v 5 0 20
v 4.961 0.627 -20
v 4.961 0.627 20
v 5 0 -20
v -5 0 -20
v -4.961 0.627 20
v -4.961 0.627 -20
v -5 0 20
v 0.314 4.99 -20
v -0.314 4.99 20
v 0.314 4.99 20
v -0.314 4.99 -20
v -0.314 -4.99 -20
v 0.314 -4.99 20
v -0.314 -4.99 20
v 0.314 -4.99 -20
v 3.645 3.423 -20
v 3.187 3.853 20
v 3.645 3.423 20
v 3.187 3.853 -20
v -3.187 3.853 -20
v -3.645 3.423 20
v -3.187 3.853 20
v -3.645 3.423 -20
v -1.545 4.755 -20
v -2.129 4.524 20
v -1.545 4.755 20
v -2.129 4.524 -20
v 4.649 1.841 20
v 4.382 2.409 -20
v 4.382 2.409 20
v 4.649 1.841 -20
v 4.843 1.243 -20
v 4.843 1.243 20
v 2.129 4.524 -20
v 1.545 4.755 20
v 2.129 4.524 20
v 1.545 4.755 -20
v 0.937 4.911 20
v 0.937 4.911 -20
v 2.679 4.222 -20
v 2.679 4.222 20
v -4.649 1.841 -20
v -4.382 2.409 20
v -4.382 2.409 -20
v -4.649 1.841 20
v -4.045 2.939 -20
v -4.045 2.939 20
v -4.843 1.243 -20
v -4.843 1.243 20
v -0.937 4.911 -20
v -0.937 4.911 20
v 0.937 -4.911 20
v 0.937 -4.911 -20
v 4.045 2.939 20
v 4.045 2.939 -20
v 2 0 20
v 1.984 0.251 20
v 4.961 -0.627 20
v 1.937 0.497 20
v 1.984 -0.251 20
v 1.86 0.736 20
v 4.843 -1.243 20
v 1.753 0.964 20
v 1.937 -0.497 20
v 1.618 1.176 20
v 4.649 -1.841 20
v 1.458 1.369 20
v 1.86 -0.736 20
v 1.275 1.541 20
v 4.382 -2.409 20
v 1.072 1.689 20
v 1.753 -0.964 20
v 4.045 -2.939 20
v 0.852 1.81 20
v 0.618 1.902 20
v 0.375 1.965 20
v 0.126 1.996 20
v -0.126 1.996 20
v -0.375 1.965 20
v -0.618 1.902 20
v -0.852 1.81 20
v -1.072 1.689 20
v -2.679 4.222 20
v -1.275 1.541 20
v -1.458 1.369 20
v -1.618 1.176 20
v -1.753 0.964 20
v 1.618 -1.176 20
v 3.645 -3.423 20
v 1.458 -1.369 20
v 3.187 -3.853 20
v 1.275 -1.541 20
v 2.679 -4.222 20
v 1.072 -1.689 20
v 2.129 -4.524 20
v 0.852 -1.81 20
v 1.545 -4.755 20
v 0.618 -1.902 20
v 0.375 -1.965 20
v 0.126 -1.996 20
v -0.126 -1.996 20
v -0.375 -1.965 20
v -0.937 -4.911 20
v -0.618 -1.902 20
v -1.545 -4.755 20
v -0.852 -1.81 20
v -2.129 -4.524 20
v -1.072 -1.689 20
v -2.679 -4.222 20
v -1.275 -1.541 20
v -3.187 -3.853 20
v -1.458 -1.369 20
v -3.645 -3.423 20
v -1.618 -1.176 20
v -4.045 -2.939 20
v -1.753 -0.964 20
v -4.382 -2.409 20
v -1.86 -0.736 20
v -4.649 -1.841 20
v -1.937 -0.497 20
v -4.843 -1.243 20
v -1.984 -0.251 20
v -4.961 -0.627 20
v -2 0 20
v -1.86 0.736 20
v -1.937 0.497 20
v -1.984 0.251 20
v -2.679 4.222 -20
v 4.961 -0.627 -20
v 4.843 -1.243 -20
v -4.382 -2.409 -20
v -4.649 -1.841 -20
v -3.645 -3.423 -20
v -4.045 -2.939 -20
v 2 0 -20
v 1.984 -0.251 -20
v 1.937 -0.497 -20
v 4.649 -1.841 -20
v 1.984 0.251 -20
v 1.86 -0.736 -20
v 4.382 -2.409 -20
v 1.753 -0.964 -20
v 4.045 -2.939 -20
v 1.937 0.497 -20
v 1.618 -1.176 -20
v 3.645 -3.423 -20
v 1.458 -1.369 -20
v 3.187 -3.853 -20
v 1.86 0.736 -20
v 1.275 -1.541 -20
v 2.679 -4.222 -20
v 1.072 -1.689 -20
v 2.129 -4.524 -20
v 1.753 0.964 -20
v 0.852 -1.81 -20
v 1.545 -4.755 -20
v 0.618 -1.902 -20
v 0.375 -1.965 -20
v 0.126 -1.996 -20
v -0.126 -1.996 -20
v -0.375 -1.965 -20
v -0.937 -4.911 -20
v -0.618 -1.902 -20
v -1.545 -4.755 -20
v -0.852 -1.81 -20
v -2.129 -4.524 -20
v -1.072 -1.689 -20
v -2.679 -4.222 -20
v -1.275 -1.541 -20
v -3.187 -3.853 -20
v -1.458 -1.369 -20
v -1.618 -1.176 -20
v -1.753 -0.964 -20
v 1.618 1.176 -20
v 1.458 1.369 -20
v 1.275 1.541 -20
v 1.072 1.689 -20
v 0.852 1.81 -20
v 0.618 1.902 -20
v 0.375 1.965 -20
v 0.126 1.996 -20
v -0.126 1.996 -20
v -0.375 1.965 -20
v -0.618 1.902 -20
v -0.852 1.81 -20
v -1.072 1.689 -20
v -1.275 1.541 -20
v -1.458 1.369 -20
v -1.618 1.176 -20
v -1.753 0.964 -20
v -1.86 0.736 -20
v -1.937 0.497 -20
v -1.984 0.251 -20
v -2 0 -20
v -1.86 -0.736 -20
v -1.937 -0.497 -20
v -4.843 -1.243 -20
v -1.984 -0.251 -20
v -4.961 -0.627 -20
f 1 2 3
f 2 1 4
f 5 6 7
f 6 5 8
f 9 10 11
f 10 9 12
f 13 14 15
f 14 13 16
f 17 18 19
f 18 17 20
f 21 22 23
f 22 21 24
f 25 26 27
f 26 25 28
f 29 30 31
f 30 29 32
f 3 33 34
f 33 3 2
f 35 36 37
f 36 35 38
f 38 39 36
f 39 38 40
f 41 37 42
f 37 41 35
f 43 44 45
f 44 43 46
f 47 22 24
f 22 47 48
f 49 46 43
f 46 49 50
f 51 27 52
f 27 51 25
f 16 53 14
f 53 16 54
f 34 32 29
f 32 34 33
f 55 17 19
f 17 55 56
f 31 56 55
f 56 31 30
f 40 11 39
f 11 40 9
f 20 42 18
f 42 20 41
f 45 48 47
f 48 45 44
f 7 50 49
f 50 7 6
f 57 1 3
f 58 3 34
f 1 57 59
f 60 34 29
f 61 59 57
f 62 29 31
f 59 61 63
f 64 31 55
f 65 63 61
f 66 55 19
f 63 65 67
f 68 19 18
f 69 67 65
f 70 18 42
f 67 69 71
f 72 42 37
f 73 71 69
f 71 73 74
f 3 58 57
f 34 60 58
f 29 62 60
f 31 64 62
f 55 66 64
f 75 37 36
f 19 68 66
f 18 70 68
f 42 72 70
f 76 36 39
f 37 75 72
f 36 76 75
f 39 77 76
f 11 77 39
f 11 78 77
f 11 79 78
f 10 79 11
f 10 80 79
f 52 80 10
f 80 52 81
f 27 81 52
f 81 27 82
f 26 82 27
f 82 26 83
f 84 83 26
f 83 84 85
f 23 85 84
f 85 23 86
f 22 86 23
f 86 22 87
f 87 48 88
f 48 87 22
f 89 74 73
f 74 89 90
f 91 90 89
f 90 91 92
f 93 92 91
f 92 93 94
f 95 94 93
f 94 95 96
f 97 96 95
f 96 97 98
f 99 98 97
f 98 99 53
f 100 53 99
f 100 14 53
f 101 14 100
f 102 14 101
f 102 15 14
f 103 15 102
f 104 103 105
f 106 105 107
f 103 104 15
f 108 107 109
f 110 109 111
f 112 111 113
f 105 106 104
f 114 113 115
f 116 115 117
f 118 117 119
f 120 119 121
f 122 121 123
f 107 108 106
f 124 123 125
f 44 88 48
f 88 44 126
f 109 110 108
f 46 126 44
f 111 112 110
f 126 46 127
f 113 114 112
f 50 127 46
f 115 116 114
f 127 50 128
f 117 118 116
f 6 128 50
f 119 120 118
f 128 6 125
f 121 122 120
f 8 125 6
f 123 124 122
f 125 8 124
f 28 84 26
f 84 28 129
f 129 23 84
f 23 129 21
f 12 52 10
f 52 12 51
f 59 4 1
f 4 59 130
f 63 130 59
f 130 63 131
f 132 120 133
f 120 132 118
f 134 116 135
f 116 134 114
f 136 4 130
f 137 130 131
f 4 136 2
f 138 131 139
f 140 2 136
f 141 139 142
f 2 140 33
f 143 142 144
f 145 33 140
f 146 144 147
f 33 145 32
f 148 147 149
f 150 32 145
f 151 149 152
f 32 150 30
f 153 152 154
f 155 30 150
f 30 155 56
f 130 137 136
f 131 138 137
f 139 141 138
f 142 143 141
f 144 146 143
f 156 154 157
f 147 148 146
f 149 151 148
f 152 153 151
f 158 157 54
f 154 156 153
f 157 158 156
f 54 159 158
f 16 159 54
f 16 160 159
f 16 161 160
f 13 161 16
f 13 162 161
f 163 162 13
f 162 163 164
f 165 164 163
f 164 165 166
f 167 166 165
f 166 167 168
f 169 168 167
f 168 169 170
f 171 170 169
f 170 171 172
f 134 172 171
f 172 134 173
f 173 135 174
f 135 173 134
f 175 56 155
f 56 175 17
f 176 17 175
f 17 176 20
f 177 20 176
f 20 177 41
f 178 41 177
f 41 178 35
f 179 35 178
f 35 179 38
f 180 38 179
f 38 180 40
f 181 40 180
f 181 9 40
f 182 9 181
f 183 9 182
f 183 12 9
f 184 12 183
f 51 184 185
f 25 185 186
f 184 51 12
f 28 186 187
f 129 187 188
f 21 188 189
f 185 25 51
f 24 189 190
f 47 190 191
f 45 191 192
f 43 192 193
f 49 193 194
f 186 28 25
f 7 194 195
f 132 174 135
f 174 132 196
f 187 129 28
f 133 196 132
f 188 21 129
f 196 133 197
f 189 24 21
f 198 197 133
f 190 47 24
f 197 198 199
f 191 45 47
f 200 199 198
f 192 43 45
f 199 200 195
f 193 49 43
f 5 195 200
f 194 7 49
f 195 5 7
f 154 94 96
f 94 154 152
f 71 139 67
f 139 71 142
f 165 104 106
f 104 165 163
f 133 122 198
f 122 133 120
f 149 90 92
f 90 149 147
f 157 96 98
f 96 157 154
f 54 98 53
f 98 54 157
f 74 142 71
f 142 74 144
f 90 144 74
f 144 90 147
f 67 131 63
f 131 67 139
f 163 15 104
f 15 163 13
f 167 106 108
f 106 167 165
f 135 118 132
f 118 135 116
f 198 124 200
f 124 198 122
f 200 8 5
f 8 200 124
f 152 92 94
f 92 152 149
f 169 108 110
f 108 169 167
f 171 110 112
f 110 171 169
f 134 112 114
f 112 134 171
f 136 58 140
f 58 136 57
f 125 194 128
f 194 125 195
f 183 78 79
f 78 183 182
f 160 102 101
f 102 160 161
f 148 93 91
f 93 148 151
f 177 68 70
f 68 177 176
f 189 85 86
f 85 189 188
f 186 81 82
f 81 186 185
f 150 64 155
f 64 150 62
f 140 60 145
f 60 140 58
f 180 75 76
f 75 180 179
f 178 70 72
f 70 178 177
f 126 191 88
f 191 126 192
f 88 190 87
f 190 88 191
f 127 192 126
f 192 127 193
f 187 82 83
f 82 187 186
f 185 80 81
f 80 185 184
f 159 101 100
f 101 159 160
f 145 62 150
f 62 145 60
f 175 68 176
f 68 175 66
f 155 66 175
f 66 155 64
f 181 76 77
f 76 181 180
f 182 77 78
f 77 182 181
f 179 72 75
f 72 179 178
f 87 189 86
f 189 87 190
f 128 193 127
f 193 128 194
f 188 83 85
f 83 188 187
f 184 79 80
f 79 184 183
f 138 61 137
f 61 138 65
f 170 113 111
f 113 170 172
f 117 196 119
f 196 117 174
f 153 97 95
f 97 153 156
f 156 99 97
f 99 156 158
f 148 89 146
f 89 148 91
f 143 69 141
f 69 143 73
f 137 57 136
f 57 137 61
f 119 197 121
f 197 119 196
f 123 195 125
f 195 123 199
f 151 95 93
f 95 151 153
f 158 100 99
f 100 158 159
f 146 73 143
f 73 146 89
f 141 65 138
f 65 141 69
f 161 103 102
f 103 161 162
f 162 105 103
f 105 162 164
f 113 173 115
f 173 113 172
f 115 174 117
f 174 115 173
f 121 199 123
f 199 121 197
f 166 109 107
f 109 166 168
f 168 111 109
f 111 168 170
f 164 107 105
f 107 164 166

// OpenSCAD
$fn = 50;


difference() {
	union() {
		translate(v = [0, 0, -20.0000000000]) {
			cylinder(h = 40, r = 5.0000000000);
		}
	}
	union() {
		translate(v = [0, 0, -100.0000000000]) {
			cylinder(h = 200, r = 2);
		}
	}
}
